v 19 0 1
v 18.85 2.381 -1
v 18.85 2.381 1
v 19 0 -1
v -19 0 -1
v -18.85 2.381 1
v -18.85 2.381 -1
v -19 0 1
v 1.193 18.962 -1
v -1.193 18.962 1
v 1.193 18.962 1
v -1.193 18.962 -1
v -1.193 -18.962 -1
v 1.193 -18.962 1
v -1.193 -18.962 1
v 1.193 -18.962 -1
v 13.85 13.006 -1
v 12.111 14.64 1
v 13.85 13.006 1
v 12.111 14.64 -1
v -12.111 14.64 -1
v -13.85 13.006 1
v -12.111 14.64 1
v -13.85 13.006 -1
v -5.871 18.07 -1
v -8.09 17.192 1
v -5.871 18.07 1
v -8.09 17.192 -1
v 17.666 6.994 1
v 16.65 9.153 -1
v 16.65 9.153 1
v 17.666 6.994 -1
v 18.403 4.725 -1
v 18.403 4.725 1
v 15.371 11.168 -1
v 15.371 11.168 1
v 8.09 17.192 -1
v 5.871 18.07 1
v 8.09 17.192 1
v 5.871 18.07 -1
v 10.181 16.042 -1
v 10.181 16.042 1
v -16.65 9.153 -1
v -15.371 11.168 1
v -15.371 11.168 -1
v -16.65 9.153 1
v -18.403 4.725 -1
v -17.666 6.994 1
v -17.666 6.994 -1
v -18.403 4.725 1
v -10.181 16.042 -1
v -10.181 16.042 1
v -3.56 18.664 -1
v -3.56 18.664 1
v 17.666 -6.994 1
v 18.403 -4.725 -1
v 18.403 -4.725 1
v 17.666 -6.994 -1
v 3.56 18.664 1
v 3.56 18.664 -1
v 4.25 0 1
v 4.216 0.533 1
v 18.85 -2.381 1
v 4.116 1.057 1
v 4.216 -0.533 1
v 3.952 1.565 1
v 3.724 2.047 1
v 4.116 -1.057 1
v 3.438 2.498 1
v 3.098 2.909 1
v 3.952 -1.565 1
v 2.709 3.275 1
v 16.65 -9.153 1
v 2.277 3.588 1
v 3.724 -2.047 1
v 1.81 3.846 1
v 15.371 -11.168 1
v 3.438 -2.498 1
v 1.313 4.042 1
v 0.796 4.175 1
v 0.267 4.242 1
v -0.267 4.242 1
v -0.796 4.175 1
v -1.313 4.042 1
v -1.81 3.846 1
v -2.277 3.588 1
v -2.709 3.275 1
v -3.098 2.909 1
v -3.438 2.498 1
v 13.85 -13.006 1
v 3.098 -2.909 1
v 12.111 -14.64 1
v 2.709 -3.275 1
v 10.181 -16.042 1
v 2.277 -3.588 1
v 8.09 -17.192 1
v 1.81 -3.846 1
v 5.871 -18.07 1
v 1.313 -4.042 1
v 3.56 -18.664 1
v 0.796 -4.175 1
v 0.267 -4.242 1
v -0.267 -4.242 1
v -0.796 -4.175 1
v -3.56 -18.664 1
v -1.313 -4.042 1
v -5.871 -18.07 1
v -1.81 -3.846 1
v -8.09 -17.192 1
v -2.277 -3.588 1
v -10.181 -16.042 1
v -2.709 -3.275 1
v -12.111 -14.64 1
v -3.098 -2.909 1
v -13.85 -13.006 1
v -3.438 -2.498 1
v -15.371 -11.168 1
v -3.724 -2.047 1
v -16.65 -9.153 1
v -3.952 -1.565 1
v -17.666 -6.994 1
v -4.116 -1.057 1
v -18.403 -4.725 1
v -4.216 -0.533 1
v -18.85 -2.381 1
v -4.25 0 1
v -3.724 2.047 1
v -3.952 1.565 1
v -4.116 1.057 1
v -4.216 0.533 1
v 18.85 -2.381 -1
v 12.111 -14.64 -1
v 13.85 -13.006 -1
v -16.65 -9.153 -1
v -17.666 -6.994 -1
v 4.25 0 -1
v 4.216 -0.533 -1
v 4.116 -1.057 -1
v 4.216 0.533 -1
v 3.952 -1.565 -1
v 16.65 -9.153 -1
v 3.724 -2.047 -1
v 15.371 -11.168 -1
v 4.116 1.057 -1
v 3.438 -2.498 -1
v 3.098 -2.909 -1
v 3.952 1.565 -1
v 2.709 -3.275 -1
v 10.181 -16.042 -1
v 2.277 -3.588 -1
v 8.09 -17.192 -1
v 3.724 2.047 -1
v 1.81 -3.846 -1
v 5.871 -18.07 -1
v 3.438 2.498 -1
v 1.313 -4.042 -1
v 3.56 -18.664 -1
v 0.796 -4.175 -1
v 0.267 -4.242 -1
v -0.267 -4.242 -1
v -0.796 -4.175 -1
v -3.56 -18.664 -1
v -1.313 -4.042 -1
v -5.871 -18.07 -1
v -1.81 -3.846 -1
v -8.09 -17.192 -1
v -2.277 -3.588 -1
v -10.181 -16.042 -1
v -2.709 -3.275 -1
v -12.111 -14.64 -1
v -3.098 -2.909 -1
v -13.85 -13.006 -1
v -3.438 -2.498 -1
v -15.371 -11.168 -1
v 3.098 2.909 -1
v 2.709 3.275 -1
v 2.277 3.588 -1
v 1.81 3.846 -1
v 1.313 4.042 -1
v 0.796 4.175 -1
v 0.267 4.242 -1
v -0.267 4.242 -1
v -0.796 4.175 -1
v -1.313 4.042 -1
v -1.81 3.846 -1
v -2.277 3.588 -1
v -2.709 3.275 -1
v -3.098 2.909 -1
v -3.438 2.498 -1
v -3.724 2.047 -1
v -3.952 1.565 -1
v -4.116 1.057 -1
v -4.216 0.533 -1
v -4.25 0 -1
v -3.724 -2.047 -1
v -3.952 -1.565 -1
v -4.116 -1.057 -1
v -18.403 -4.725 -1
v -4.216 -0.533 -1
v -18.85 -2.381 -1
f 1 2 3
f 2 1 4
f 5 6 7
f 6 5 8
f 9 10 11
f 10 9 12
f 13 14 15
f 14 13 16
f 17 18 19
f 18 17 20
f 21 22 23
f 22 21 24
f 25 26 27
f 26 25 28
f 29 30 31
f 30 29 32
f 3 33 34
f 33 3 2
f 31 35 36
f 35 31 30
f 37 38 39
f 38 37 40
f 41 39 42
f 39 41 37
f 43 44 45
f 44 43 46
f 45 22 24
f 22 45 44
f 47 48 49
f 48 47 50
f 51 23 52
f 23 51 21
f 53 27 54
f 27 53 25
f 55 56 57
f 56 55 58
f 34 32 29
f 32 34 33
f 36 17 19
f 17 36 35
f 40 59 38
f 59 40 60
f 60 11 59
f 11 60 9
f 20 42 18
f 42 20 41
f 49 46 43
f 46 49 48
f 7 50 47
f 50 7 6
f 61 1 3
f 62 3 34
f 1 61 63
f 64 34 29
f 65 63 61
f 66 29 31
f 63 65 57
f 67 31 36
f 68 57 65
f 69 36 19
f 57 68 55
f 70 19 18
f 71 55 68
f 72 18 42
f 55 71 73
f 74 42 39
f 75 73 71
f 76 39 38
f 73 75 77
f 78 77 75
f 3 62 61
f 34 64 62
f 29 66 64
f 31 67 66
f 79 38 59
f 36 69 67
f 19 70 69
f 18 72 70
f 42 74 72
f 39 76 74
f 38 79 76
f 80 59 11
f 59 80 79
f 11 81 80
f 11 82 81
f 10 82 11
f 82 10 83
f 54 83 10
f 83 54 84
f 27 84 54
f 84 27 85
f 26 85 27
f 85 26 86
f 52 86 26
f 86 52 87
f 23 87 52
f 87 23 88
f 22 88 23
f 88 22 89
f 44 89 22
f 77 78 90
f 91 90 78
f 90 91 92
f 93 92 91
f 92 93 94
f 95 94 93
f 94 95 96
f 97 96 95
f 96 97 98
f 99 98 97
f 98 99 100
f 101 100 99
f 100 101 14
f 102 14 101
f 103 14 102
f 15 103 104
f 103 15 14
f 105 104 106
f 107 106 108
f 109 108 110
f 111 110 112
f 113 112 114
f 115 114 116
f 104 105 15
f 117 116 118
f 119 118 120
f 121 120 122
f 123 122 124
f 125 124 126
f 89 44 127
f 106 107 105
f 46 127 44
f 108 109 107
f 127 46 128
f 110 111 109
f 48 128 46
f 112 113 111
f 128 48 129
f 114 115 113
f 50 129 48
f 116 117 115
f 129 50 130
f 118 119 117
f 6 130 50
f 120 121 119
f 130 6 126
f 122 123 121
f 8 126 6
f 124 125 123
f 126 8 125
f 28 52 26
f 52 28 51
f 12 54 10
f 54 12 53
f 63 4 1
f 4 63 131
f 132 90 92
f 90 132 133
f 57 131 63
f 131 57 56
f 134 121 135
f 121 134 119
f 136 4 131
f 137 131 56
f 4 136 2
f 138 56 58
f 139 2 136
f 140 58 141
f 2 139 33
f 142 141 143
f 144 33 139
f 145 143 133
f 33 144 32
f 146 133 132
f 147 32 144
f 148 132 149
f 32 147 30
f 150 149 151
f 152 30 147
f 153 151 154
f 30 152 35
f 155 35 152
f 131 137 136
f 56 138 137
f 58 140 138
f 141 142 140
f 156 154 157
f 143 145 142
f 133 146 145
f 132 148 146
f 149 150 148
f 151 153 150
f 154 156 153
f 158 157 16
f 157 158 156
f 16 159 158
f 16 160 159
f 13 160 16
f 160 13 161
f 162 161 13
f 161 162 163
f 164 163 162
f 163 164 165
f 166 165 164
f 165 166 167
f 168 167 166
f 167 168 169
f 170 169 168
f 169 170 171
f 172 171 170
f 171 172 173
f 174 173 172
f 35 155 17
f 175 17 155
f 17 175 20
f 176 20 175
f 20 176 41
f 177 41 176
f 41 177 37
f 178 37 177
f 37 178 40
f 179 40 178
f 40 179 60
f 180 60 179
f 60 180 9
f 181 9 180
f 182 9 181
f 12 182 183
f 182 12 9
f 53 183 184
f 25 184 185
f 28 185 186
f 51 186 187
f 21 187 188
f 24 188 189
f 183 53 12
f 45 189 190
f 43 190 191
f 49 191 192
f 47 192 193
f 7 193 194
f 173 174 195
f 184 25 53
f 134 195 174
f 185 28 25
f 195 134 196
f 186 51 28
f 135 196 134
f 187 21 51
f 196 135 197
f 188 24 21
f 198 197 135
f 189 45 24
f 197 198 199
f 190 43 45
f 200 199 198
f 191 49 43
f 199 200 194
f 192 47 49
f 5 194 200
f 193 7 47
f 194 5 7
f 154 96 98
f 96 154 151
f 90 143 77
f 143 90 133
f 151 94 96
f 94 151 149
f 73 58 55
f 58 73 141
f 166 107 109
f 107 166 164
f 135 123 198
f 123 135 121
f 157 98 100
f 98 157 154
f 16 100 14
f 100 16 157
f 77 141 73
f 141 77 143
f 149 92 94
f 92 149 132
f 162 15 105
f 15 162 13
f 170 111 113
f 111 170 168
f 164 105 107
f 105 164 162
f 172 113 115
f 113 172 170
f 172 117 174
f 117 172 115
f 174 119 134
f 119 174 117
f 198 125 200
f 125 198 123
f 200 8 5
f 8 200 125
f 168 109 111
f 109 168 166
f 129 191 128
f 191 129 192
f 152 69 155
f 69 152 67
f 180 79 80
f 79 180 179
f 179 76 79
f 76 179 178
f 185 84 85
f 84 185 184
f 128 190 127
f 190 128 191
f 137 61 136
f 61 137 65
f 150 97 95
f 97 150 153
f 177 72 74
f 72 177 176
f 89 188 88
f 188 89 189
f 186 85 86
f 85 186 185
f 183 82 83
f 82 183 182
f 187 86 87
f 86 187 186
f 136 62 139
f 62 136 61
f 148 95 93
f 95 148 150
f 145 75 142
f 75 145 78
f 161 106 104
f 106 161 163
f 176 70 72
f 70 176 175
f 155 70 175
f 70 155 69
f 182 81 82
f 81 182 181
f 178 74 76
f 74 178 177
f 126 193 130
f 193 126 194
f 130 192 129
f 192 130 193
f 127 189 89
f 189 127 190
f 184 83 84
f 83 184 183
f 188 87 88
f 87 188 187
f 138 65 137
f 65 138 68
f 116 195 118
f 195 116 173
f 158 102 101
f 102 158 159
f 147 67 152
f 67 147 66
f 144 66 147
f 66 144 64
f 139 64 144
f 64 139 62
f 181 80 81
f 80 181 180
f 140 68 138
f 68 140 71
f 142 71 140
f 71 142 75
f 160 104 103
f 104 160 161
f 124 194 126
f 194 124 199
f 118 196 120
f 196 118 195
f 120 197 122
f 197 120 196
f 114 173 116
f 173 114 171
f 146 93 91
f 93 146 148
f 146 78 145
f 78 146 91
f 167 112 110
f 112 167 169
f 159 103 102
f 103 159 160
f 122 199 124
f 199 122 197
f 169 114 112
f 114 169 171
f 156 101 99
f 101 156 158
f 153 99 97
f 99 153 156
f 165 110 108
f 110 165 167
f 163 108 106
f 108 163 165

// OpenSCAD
$fn = 50;


difference() {
	union() {
		translate(v = [0, 0, -1.0000000000]) {
			cylinder(h = 2, r = 19.0000000000);
		}
	}
	union() {
		translate(v = [0, 0, -100.0000000000]) {
			cylinder(h = 200, r = 4.2500000000);
		}
	}
}
